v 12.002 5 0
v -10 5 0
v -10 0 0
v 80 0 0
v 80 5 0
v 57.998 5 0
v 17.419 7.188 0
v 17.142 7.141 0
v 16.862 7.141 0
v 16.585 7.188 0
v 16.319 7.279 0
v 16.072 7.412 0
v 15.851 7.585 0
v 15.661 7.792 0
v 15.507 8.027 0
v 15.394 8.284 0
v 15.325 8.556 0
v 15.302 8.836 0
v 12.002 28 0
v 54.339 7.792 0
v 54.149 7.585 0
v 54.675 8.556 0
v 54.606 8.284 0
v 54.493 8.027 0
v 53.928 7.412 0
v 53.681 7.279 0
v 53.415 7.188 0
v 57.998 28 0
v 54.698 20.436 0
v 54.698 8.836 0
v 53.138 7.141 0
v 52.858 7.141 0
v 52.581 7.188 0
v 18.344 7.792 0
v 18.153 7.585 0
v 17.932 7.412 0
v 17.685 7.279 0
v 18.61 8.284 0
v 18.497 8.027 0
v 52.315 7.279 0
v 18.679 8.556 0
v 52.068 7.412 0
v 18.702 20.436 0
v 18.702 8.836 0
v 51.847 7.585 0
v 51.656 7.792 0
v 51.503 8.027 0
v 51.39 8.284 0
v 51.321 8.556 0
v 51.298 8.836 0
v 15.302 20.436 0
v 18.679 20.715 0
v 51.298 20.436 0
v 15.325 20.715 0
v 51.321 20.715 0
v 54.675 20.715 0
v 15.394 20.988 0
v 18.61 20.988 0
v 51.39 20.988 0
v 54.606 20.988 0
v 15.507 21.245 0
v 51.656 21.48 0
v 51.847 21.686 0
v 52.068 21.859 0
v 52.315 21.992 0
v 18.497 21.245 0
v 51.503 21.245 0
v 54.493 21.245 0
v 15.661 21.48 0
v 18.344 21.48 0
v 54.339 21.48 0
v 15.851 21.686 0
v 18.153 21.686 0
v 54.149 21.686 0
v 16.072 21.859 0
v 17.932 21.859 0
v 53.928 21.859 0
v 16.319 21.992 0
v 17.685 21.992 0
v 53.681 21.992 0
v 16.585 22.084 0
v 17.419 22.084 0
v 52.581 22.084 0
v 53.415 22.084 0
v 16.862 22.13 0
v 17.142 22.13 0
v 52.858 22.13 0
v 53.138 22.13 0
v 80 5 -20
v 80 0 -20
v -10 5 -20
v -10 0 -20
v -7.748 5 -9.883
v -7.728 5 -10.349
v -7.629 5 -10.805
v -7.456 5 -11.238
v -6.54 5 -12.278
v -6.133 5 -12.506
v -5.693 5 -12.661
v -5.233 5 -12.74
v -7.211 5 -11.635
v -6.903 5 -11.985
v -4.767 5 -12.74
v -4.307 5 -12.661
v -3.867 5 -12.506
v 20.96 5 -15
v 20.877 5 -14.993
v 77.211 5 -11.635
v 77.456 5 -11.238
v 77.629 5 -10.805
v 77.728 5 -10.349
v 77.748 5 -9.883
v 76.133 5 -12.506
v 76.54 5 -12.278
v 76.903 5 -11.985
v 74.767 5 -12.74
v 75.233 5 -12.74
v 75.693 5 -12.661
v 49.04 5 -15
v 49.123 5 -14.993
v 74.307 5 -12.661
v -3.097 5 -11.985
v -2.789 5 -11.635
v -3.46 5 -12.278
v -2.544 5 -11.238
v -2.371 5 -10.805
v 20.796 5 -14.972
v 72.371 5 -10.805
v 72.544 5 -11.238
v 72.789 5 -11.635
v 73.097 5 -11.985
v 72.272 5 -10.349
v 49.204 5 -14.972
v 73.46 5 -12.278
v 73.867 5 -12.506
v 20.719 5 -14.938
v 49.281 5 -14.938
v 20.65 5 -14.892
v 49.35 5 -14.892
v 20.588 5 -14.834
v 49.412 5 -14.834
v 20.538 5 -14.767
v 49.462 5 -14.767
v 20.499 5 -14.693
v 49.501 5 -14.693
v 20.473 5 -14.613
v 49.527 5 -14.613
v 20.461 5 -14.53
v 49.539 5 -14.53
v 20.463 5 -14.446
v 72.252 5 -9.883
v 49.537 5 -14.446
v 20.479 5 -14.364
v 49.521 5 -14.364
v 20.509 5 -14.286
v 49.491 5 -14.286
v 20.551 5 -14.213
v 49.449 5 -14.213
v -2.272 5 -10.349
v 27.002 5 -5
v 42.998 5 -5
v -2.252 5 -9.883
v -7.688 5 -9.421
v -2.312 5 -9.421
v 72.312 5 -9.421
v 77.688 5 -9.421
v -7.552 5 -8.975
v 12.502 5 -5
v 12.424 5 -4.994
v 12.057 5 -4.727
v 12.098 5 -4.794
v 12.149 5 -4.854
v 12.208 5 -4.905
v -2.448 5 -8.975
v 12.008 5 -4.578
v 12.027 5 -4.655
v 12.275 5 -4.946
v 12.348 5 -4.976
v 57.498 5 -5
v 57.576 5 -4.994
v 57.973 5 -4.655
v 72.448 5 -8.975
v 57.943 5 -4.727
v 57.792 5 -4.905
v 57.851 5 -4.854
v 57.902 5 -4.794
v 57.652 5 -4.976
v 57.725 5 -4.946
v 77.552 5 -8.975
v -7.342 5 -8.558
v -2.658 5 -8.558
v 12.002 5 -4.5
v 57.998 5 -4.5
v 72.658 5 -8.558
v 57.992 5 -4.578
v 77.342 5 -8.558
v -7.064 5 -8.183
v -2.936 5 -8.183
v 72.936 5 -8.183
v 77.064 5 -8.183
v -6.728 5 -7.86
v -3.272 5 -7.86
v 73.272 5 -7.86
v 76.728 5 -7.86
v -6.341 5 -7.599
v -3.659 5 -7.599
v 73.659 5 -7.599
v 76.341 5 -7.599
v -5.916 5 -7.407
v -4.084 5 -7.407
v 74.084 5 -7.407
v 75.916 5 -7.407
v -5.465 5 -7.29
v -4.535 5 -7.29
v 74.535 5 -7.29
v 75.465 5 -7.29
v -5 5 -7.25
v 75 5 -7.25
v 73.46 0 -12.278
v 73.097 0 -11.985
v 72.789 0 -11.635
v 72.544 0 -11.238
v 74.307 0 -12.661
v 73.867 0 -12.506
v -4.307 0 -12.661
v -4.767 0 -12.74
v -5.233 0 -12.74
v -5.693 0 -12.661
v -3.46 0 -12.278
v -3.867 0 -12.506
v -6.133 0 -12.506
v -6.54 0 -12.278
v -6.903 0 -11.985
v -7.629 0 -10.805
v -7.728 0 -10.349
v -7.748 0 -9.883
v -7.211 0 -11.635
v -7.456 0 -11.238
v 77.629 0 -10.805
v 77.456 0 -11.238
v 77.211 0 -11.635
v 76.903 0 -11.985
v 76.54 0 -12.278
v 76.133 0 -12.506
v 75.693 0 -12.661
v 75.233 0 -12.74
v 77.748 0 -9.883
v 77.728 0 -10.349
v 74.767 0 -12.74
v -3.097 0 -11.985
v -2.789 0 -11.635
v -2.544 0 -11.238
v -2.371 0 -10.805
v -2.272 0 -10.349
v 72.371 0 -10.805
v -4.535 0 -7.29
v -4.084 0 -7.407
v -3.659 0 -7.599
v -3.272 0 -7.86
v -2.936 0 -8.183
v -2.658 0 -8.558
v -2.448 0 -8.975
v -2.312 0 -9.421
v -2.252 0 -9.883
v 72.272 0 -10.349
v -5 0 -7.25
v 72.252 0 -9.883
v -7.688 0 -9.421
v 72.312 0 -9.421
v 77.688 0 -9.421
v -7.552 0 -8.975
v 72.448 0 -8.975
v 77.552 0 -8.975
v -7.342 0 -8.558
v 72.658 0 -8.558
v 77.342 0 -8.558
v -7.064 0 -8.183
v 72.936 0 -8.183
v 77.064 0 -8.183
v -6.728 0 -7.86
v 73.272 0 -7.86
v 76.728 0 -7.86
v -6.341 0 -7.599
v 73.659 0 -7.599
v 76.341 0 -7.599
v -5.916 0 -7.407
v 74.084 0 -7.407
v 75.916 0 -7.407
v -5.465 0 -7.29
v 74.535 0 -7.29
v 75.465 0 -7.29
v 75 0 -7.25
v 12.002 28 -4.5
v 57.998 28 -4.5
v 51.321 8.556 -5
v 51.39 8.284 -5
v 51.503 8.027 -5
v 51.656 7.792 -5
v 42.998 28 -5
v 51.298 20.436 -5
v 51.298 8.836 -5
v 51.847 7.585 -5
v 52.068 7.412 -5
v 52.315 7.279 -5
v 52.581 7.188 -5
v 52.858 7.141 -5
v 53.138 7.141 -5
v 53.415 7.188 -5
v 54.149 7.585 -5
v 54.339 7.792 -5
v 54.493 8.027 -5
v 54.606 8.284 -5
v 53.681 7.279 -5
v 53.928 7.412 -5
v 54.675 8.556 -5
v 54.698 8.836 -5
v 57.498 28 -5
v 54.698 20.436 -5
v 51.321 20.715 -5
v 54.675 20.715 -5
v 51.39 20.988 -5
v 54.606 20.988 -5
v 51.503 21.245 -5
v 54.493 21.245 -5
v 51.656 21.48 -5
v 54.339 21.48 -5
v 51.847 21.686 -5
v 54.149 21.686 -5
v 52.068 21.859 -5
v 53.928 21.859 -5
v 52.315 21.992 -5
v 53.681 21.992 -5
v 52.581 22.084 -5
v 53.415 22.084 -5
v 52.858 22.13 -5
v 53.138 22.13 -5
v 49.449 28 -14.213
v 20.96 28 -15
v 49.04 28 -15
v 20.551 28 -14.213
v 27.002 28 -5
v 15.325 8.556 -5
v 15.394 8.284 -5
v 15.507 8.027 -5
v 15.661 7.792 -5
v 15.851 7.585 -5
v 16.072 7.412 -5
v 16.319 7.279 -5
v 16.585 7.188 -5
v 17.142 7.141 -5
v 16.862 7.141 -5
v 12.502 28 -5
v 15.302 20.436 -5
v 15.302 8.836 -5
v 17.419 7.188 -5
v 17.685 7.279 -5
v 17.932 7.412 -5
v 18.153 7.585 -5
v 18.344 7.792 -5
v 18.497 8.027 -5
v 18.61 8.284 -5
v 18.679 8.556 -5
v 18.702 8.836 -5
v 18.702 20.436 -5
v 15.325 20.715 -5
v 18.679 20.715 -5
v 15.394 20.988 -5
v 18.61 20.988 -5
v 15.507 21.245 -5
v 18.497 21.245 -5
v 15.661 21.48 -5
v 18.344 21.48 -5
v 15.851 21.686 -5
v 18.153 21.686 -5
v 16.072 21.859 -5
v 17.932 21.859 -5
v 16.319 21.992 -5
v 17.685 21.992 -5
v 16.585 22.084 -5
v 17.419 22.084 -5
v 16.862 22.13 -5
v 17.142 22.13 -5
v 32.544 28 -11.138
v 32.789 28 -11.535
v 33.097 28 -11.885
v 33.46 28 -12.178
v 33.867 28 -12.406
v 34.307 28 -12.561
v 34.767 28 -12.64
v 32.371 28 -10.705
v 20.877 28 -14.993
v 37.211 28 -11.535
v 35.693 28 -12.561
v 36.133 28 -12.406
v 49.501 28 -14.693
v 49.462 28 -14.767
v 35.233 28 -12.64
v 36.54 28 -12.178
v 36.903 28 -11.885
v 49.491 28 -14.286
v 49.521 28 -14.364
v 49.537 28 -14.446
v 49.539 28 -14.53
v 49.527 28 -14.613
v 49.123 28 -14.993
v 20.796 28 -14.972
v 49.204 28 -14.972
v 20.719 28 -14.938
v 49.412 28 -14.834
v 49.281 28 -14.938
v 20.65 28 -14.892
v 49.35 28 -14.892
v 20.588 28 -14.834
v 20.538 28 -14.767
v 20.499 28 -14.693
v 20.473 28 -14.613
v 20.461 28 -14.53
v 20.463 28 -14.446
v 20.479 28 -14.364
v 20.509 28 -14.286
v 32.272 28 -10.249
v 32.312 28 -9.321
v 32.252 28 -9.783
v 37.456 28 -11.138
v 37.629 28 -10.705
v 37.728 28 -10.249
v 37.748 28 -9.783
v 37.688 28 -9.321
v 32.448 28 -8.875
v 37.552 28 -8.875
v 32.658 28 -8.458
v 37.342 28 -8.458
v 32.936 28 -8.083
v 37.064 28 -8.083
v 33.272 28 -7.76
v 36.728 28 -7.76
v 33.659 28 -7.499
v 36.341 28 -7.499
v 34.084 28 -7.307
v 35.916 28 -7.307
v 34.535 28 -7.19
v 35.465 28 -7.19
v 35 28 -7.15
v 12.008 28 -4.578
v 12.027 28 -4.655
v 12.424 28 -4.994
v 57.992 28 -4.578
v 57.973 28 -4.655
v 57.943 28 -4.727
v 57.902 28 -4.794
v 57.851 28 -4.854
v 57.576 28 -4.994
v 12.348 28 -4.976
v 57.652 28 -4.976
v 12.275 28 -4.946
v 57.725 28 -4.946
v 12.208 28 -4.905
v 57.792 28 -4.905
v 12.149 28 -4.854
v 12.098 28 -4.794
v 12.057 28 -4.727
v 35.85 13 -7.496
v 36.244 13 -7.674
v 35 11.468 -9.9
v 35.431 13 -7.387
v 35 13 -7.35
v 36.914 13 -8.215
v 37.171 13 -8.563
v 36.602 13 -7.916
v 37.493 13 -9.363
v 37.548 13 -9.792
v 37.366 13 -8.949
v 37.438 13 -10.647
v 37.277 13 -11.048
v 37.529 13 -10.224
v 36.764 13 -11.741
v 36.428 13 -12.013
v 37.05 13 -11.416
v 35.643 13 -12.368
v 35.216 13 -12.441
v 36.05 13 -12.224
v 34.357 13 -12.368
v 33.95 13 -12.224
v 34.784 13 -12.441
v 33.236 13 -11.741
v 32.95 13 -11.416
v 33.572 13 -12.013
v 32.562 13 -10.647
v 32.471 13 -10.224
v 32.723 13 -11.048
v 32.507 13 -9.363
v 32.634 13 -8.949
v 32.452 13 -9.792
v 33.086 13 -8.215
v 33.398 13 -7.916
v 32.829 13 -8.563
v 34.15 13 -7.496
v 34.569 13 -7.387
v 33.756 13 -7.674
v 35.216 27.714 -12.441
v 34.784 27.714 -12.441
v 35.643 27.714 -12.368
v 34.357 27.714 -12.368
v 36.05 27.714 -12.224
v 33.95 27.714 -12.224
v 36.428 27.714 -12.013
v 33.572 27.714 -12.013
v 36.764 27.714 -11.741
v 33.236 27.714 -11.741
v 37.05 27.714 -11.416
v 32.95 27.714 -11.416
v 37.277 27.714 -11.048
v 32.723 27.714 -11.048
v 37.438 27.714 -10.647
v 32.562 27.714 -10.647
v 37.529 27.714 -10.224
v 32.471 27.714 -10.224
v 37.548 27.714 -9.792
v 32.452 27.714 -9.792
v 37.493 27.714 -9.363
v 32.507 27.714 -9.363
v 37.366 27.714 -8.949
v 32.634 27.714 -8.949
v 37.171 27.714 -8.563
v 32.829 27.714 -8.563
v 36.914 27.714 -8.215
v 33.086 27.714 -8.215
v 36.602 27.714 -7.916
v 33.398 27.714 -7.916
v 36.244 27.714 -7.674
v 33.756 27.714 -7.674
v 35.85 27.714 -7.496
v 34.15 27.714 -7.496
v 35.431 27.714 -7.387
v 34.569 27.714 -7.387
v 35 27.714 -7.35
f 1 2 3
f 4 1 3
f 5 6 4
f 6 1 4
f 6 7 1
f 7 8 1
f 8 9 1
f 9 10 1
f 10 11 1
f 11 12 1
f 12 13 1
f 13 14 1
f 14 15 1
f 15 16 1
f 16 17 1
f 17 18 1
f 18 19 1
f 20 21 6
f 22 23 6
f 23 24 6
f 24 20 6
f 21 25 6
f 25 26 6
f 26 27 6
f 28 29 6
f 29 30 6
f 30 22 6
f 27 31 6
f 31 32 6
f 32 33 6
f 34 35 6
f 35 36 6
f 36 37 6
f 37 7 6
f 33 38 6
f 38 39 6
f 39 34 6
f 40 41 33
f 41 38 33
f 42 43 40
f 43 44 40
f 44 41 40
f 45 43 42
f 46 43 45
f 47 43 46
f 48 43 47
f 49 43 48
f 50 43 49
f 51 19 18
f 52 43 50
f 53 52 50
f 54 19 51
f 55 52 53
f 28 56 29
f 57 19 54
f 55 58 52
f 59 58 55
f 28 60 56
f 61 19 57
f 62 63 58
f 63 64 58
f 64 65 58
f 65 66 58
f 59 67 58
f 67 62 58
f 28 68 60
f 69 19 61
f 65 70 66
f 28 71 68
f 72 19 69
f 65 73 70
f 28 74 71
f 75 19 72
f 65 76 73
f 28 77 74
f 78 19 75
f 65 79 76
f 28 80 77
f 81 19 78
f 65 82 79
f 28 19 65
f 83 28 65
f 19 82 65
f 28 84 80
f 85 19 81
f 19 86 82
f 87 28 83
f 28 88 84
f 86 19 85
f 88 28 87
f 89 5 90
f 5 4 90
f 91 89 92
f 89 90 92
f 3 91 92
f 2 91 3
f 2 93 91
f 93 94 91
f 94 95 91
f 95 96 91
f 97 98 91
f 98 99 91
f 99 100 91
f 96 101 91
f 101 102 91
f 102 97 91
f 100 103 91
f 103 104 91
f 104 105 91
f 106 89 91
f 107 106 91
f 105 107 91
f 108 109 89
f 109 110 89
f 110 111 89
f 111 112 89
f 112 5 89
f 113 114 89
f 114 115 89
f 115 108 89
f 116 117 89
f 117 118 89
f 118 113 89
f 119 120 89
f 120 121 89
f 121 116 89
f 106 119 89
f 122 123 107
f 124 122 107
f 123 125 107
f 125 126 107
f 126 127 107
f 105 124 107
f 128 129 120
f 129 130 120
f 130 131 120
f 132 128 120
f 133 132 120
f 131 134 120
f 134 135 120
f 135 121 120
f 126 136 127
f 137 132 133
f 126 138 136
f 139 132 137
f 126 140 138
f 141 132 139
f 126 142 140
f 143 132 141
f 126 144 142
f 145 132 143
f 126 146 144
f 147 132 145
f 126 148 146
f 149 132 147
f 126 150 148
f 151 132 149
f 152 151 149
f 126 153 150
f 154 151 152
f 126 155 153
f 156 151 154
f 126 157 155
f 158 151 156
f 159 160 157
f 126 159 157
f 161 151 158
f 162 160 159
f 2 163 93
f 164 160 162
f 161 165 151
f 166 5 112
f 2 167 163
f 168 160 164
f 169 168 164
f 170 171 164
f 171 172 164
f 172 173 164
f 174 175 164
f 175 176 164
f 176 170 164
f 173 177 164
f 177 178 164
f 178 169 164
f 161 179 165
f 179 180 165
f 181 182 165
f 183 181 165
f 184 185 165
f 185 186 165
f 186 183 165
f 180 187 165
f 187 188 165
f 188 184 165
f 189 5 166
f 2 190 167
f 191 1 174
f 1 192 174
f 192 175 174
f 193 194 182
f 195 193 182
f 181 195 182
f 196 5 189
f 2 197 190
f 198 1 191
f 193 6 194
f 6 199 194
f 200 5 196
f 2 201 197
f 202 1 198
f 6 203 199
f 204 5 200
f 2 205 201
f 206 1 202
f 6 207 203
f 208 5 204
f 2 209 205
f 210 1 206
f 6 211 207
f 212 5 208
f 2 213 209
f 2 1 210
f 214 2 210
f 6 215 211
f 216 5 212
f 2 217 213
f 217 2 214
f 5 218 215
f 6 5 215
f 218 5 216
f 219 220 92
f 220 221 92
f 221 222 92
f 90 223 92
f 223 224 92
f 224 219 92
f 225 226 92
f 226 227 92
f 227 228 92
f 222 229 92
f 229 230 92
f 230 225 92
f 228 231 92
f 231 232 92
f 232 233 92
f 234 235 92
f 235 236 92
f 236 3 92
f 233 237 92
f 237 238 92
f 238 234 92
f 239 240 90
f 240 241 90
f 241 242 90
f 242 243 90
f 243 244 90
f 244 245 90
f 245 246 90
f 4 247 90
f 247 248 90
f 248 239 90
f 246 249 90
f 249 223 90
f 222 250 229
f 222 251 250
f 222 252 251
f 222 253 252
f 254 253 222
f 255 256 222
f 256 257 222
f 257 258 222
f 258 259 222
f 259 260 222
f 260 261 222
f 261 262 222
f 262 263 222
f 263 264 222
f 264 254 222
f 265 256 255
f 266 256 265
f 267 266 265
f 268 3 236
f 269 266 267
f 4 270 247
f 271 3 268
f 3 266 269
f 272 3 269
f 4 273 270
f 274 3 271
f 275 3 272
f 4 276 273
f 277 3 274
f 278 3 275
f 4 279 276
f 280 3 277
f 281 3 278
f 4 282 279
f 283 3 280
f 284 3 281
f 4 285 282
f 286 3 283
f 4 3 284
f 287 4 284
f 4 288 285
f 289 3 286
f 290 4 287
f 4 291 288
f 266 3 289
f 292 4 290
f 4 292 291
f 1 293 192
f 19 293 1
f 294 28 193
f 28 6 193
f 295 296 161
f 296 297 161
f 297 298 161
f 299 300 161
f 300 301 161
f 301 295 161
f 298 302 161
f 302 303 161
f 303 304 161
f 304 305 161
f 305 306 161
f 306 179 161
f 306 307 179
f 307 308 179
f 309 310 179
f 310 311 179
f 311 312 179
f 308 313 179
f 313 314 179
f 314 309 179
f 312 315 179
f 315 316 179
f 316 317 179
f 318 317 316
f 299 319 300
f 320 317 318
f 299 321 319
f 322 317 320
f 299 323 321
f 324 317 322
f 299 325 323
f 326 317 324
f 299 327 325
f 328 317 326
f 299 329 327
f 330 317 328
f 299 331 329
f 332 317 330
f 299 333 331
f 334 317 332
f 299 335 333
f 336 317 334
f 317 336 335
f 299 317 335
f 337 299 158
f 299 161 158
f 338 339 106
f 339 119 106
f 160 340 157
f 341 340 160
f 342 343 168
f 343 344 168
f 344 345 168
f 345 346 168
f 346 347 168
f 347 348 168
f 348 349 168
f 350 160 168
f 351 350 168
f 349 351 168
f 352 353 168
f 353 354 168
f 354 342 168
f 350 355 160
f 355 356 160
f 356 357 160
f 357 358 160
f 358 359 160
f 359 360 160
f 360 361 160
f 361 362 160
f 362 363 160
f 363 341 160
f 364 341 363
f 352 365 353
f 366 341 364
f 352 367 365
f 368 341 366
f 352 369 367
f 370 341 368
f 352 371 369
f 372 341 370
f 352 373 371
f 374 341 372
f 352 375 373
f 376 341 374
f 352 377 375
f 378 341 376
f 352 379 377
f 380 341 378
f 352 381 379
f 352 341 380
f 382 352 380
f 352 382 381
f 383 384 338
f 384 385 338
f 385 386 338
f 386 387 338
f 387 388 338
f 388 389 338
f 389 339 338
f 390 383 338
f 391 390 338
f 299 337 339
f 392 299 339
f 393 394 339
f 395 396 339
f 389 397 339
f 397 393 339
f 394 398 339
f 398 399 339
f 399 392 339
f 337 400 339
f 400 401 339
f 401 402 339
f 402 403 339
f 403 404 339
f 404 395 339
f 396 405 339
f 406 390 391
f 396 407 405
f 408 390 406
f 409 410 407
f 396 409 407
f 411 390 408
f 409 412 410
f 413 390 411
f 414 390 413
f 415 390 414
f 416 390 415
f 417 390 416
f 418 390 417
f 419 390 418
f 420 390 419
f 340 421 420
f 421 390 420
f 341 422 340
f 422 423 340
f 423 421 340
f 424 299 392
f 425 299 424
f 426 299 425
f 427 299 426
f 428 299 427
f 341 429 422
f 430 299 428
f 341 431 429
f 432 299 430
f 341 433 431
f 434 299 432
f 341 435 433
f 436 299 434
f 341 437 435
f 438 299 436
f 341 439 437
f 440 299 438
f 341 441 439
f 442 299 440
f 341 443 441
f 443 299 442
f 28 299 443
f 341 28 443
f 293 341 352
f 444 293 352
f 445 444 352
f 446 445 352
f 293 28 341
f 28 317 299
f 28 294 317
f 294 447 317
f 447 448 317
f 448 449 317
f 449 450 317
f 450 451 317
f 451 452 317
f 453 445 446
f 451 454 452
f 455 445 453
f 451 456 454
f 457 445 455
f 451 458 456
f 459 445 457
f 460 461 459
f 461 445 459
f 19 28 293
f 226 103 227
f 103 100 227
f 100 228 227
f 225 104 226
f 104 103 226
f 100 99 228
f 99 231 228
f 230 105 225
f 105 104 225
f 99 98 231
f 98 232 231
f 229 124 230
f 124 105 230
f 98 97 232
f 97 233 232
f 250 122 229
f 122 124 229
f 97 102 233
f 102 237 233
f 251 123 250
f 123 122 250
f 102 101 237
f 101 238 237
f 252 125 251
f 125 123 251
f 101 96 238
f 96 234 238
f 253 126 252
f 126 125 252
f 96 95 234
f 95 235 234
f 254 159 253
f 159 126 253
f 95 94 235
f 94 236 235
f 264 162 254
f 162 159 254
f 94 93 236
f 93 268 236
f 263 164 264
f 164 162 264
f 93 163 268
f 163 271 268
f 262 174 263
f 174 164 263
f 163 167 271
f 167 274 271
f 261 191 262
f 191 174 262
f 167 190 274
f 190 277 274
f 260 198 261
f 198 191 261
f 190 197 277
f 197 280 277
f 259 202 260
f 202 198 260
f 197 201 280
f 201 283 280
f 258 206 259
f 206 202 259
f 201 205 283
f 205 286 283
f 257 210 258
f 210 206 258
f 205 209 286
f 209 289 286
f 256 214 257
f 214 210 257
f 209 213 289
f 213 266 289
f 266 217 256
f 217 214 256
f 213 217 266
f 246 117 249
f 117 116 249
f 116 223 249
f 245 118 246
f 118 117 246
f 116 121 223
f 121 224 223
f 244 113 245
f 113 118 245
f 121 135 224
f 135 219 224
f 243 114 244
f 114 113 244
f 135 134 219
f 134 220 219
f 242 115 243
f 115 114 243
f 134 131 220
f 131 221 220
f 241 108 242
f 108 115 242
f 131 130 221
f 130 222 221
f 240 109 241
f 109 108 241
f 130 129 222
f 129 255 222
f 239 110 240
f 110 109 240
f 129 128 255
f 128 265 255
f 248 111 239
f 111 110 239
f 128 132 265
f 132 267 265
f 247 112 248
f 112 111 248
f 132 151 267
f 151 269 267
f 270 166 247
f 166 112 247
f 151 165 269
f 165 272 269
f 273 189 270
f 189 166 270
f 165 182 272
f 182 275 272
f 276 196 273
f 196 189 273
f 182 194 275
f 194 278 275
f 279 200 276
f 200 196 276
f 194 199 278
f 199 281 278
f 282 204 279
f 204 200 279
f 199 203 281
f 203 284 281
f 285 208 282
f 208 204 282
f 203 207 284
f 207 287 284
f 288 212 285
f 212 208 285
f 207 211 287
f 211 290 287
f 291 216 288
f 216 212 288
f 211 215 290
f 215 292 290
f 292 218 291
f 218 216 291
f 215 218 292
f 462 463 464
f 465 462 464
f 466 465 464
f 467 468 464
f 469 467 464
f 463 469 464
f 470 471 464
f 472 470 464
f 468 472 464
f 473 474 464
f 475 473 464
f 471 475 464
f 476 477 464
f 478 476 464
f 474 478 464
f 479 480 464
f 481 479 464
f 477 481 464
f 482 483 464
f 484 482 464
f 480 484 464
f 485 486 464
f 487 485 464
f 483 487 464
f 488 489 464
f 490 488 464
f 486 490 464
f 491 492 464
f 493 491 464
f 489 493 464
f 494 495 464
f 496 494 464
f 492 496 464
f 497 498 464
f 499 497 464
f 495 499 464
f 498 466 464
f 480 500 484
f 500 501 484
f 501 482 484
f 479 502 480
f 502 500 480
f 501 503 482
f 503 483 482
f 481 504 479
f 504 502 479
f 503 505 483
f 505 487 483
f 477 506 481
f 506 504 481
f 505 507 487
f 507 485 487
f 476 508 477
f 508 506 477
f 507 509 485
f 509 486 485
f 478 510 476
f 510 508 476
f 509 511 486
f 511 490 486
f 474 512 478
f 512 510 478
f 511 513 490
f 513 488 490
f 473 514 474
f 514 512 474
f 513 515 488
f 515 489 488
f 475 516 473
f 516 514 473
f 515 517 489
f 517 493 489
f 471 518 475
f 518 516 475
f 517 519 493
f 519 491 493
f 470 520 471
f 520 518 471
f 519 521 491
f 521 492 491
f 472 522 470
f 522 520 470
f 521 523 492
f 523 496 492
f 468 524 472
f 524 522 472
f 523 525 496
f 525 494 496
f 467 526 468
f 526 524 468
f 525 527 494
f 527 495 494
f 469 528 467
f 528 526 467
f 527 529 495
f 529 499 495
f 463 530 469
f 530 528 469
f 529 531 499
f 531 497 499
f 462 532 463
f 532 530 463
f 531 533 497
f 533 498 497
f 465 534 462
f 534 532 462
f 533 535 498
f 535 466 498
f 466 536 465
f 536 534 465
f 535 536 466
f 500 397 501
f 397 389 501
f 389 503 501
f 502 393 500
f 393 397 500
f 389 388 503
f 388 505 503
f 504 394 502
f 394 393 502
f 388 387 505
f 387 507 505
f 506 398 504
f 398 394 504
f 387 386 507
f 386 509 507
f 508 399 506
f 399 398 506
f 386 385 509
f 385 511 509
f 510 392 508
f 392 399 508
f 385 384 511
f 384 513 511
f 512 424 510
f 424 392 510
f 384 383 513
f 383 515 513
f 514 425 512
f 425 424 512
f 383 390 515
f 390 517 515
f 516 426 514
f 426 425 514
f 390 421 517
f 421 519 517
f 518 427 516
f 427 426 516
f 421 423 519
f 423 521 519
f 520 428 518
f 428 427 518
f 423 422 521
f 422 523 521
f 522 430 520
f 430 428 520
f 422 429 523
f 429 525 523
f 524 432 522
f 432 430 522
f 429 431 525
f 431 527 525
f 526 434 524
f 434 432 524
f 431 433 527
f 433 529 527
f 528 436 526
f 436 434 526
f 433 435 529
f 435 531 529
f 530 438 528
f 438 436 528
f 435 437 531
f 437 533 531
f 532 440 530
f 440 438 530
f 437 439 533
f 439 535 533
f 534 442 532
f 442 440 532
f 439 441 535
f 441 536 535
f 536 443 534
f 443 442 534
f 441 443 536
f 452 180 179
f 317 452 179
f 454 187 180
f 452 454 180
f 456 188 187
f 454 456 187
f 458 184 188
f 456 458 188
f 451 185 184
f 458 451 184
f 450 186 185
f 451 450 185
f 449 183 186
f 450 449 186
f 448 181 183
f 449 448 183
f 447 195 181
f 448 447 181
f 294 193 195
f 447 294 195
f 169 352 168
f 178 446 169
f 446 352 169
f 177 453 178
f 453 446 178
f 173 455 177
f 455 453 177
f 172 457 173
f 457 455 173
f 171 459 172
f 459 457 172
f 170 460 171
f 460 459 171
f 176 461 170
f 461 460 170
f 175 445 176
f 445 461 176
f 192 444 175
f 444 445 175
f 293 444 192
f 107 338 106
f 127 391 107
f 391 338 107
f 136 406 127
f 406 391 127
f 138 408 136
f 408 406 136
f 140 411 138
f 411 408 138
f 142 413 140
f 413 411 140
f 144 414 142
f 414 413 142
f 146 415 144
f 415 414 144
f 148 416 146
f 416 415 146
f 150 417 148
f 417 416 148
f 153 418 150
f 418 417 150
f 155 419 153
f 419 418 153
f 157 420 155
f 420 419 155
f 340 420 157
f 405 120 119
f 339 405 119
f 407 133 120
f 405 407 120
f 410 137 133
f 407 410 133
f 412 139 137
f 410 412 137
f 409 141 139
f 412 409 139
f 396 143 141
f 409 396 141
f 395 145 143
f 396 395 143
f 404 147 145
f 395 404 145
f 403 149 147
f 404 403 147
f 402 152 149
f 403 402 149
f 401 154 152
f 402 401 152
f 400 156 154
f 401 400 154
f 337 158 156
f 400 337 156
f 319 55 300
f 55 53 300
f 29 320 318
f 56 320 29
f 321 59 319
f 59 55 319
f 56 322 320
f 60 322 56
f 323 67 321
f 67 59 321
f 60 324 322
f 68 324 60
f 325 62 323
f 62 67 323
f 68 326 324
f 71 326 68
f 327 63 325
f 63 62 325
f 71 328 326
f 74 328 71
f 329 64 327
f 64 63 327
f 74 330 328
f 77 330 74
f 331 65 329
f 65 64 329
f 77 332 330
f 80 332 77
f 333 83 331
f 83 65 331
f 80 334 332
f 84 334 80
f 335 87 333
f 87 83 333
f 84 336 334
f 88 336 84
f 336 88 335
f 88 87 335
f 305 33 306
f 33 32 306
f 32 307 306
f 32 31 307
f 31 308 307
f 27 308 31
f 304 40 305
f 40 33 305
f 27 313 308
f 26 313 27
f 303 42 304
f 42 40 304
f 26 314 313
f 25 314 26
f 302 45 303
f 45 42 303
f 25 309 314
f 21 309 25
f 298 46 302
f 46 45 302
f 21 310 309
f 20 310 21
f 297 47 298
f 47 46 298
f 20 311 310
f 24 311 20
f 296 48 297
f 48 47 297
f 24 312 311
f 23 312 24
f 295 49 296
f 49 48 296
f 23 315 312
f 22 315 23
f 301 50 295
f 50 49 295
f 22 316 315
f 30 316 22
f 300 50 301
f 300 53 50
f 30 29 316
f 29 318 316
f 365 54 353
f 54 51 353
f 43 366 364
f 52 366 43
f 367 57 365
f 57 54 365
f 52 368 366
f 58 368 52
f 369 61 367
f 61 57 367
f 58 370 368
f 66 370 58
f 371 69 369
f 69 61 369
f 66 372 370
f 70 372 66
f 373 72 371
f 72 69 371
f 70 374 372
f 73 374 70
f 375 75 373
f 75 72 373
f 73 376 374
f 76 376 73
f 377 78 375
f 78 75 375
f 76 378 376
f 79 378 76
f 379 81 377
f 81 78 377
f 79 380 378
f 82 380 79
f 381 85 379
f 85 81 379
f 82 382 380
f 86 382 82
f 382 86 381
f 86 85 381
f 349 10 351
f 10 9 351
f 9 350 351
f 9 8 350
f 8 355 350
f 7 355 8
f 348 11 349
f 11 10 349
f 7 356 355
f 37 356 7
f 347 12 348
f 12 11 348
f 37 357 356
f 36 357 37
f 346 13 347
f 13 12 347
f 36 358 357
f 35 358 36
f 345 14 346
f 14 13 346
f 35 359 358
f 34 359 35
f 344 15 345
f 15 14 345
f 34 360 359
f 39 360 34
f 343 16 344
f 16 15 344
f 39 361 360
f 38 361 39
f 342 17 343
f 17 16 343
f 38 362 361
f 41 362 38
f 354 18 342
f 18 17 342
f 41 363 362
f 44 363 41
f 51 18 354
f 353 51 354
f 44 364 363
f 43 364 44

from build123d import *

# Parameters (mm, degrees)
SKETCH1_W                                       = 10
SKETCH1_H                                       = 20
BOSS_EXTRUDE1_DEPTH                             = 5
BOSS_EXTRUDE2_DEPTH                             = 28
M5_CLEARANCE_HOLE1_D                            = 5.5
M5_CLEARANCE_HOLE1_DEPTH                        = 10
M5_CLEARANCE_HOLE1_TIP                          = 1.652366702
CSK_FOR_M4_FLAT_HEAD_MACHINE_SCREW1_D           = 5.1
CSK_FOR_M4_FLAT_HEAD_MACHINE_SCREW1_DEPTH       = 15
CSK_FOR_M4_FLAT_HEAD_MACHINE_SCREW1_CSINK_D     = 5.5
CSK_FOR_M4_FLAT_HEAD_MACHINE_SCREW1_CSINK_ANGLE = 70
CSK_FOR_M4_FLAT_HEAD_MACHINE_SCREW1_TIP         = 1.532194579
FILLET1_R                                       = 0.5
M3_START                                        = -5
M3_CLEARANCE_SLOT1_DEPTH                        = 5


# Read off the part's stored shape, not the designer's step: M3 Clearance Slot1
with BuildPart() as part:
    # Sketch1 → Boss-Extrude1 (new body)
    with BuildSketch(Plane(origin=(0, 0, 0), x_dir=(1, 0, 0), z_dir=(0, 1, 0))):
        Polygon((0, 20), (0, 0), (12.002075382, 0), (12.002075382, 5), (27.002075382, 5), (20, 15), (50, 15), (42.997924618, 5), (57.997924618, 5), (57.997924618, 0), (70, 0), (70, 20), align=None)
        with Locations((-5, 10)):
            Rectangle(SKETCH1_W, SKETCH1_H)
        Polygon((12.002075382, 5), (12.002075382, 0), (57.997924618, 0), (57.997924618, 5), (42.997924618, 5), (50, 15), (20, 15), (27.002075382, 5), align=None)
        with Locations((75, 10)):
            Rectangle(SKETCH1_W, SKETCH1_H)
    extrude(amount=BOSS_EXTRUDE1_DEPTH)

    # Sketch1<3> → Boss-Extrude2 (add)
    with BuildSketch(Plane(origin=(0, 0, 0), x_dir=(1, 0, 0), z_dir=(0, 1, 0))):
        Polygon((12.002075382, 5), (12.002075382, 0), (57.997924618, 0), (57.997924618, 5), (42.997924618, 5), (50, 15), (20, 15), (27.002075382, 5), align=None)
    extrude(amount=BOSS_EXTRUDE2_DEPTH)

    # M5 Clearance Hole1
    with Locations(Plane(origin=(0, 5, 0), x_dir=(1, 0, 0), z_dir=(0, 1, 0))):
        with Locations((75, 10), (-5, 10)):
            Hole(M5_CLEARANCE_HOLE1_D / 2, depth=M5_CLEARANCE_HOLE1_DEPTH)
            with Locations((0, 0, -(M5_CLEARANCE_HOLE1_DEPTH + M5_CLEARANCE_HOLE1_TIP / 2))):  # 118° drill point
                Cone(0, M5_CLEARANCE_HOLE1_D / 2, M5_CLEARANCE_HOLE1_TIP, mode=Mode.SUBTRACT)

    # CSK for M4 Flat Head Machine Screw1
    with Locations(Plane(origin=(0, 28, 0), x_dir=(1, 0, 0), z_dir=(0, 1, 0))):
        with Locations((35, 9.9)):
            CounterSinkHole(CSK_FOR_M4_FLAT_HEAD_MACHINE_SCREW1_D / 2, CSK_FOR_M4_FLAT_HEAD_MACHINE_SCREW1_CSINK_D / 2, depth=CSK_FOR_M4_FLAT_HEAD_MACHINE_SCREW1_DEPTH, counter_sink_angle=CSK_FOR_M4_FLAT_HEAD_MACHINE_SCREW1_CSINK_ANGLE)
            with Locations((0, 0, -(CSK_FOR_M4_FLAT_HEAD_MACHINE_SCREW1_DEPTH + CSK_FOR_M4_FLAT_HEAD_MACHINE_SCREW1_TIP / 2))):  # 118° drill point
                Cone(0, CSK_FOR_M4_FLAT_HEAD_MACHINE_SCREW1_D / 2, CSK_FOR_M4_FLAT_HEAD_MACHINE_SCREW1_TIP, mode=Mode.SUBTRACT)

    # Fillet1
    fillet1_edges = [part.edges().sort_by_distance(p)[0] for p in [
        (12.002075382, 16.5, -5),
        (57.997924618, 16.5, -5),
        (50, 16.5, -15),
        (20, 16.5, -15),
    ]]
    fillet(fillet1_edges, radius=FILLET1_R)

    # M3 Clearance Slot1 outline → M3 Clearance Slot1 (cut)
    with BuildSketch(Plane.XY.offset(M3_START)):
        with BuildLine():
            Line((54.697924618, 8.835678671), (54.697924618, 20.435678671))
            ThreePointArc((54.697924618, 20.435678671), (52.997924618, 22.135678671), (51.297924618, 20.435678671))
            Line((51.297924618, 20.435678671), (51.297924618, 8.835678671))
            ThreePointArc((51.297924618, 8.835678671), (52.997924618, 7.135678671), (54.697924618, 8.835678671))
        make_face()
        with BuildLine():
            Line((18.702075382, 8.835678671), (18.702075382, 20.435678671))
            ThreePointArc((18.702075382, 20.435678671), (17.002075382, 22.135678671), (15.302075382, 20.435678671))
            Line((15.302075382, 20.435678671), (15.302075382, 8.835678671))
            ThreePointArc((15.302075382, 8.835678671), (17.002075382, 7.135678671), (18.702075382, 8.835678671))
        make_face()
    extrude(amount=M3_CLEARANCE_SLOT1_DEPTH, mode=Mode.SUBTRACT)


solid = part.part
